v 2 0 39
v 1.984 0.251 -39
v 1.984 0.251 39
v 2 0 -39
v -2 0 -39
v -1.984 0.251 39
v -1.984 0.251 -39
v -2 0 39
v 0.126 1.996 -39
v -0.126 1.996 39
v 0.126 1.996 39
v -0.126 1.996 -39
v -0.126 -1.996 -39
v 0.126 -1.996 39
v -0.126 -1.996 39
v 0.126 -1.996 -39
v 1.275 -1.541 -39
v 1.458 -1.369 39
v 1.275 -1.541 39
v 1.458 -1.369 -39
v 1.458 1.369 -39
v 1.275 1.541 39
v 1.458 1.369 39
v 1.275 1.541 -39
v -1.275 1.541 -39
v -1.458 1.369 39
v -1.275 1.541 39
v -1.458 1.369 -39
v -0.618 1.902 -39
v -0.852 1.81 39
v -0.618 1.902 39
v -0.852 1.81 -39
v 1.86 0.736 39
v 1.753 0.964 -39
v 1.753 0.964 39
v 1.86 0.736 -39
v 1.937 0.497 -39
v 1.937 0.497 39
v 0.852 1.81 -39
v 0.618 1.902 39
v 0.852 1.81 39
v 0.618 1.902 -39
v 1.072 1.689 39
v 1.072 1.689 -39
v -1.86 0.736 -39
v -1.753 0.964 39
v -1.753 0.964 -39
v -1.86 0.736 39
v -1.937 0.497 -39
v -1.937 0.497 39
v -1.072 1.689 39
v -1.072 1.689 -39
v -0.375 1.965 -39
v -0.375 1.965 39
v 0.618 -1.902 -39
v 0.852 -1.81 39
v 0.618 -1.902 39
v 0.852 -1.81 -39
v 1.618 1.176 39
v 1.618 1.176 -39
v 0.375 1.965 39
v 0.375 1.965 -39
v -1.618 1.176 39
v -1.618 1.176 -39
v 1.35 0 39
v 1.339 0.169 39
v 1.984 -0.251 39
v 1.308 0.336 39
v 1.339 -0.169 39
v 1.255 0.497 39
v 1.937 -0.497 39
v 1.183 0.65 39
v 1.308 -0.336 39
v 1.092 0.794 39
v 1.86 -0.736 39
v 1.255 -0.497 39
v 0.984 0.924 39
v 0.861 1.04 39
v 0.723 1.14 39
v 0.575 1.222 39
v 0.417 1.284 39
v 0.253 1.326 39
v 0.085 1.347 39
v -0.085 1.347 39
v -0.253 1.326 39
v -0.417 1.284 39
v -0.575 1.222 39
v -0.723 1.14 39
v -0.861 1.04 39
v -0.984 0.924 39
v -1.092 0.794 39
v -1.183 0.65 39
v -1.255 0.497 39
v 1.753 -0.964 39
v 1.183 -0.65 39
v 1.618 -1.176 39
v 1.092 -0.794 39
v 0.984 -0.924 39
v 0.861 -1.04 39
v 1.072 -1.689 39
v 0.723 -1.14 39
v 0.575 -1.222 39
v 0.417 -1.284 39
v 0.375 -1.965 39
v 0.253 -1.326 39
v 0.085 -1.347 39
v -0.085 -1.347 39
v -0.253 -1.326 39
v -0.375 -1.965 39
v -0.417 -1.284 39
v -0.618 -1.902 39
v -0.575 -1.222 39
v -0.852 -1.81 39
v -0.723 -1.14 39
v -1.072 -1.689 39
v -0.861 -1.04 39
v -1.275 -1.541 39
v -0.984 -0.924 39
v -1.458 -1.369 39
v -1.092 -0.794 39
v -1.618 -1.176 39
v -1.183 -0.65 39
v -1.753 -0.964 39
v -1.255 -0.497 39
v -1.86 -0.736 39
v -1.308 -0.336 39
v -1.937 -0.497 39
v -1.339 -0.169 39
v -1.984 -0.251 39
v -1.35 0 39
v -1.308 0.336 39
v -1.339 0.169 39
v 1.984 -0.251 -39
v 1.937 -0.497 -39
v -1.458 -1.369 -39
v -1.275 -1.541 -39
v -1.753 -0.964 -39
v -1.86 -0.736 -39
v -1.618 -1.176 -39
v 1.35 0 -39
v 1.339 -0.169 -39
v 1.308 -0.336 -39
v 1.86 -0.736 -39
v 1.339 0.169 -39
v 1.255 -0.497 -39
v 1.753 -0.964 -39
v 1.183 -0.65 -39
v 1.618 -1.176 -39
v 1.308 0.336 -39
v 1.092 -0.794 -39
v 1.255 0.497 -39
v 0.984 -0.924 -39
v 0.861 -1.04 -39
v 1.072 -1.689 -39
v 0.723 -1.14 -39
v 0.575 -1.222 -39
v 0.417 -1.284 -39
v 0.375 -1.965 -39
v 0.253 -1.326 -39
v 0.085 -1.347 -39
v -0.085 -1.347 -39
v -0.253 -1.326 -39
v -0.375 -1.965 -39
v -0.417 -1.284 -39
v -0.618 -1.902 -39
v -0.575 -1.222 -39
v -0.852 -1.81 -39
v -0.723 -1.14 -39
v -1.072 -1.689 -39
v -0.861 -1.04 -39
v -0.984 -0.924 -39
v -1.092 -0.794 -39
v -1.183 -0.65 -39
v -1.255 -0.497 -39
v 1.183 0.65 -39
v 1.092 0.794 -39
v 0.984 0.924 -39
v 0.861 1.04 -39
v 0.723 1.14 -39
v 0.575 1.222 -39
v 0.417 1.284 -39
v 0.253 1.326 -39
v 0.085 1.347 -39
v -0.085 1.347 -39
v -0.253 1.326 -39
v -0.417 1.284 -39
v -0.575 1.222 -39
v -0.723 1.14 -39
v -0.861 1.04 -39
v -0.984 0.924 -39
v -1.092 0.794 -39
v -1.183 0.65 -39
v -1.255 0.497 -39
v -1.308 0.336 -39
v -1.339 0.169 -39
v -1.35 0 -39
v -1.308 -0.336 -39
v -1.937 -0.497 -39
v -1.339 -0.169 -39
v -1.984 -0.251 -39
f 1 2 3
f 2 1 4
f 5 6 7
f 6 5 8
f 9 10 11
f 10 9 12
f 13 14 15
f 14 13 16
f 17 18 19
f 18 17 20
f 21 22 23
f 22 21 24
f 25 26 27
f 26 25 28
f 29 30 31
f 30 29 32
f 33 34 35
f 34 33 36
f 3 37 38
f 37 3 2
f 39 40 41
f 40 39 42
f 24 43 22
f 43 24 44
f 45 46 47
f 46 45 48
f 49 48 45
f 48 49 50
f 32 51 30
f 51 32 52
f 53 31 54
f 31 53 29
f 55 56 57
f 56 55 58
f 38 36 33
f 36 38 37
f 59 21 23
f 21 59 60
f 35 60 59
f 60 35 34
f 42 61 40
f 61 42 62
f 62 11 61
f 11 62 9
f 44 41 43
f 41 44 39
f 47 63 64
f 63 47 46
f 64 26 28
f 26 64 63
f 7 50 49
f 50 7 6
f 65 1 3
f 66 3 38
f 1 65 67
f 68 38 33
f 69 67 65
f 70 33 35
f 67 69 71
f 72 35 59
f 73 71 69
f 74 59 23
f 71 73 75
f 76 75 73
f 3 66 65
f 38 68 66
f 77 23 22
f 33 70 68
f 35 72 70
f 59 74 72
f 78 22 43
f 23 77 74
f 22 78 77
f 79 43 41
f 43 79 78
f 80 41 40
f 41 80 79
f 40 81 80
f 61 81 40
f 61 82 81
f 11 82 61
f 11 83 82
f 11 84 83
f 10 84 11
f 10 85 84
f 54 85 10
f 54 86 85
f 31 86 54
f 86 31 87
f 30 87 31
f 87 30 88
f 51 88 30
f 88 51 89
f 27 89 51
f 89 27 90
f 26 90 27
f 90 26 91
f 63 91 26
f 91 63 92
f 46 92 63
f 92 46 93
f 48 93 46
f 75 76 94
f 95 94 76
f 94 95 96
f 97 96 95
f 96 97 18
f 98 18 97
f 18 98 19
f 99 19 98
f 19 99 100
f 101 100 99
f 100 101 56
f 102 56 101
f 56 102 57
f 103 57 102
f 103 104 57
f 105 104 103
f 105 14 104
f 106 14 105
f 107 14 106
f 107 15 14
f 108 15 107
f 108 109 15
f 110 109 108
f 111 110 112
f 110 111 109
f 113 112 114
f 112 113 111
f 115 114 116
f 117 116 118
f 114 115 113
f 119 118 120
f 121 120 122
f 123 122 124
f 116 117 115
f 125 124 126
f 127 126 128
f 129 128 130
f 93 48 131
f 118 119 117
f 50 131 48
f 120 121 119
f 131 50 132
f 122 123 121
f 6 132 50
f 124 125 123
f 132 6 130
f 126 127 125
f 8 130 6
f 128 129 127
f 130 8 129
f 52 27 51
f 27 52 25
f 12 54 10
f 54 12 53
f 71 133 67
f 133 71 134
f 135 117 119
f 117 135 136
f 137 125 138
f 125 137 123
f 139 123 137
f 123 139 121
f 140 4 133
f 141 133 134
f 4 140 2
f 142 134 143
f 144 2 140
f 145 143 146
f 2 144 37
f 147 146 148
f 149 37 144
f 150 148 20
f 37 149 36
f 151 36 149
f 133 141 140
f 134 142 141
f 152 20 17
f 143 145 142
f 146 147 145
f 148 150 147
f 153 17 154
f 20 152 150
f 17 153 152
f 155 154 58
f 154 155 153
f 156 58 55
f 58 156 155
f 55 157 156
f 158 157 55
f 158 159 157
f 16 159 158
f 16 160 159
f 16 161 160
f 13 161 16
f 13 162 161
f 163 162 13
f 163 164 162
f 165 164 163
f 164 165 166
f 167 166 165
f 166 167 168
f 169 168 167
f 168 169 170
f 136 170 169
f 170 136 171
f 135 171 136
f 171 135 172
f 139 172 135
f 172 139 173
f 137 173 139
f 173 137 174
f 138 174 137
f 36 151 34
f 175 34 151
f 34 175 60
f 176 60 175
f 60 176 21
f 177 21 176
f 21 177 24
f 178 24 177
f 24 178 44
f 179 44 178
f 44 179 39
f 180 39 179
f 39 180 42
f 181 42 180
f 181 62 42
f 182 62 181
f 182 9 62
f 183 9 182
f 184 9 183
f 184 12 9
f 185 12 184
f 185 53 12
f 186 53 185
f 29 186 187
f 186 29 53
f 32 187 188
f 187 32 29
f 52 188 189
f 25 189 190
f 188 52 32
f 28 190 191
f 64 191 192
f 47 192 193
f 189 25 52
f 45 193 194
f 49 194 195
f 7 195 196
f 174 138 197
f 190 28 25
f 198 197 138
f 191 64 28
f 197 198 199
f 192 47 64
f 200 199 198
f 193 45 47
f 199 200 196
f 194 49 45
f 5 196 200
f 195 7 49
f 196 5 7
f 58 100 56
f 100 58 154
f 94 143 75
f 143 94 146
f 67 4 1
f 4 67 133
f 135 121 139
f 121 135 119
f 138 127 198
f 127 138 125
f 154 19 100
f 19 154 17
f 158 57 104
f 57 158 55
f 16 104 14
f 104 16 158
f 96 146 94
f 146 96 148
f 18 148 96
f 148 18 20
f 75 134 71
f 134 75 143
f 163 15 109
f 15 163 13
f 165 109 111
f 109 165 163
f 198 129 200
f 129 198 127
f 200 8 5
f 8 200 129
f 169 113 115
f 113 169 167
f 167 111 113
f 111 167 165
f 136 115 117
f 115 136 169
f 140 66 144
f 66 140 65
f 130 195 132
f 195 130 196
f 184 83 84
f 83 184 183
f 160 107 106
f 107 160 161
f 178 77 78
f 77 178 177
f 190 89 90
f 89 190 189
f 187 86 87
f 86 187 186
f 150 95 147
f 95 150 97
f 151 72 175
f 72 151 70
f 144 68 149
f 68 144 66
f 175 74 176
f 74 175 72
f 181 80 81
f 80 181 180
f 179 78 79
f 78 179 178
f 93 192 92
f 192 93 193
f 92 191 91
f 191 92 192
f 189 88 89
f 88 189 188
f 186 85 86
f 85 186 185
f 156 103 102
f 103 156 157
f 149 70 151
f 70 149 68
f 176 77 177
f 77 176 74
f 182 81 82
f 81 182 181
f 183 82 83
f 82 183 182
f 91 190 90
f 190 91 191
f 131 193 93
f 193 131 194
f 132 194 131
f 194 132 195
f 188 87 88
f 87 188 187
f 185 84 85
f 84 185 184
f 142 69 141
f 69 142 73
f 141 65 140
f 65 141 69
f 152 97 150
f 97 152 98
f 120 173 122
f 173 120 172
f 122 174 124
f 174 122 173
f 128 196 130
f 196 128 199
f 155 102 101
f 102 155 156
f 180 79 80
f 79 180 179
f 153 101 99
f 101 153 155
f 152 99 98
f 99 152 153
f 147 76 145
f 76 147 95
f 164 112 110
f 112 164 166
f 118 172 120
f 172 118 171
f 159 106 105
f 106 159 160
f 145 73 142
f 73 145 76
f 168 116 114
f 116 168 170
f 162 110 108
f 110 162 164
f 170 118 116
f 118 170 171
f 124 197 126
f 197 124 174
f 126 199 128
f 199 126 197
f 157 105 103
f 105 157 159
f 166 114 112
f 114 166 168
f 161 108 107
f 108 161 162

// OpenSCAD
$fn = 50;


difference() {
	union() {
		translate(v = [0, 0, -39.0000000000]) {
			cylinder(h = 78, r = 2.0000000000);
		}
	}
	union() {
		translate(v = [0, 0, -100.0000000000]) {
			cylinder(h = 200, r = 1.3500000000);
		}
	}
}
